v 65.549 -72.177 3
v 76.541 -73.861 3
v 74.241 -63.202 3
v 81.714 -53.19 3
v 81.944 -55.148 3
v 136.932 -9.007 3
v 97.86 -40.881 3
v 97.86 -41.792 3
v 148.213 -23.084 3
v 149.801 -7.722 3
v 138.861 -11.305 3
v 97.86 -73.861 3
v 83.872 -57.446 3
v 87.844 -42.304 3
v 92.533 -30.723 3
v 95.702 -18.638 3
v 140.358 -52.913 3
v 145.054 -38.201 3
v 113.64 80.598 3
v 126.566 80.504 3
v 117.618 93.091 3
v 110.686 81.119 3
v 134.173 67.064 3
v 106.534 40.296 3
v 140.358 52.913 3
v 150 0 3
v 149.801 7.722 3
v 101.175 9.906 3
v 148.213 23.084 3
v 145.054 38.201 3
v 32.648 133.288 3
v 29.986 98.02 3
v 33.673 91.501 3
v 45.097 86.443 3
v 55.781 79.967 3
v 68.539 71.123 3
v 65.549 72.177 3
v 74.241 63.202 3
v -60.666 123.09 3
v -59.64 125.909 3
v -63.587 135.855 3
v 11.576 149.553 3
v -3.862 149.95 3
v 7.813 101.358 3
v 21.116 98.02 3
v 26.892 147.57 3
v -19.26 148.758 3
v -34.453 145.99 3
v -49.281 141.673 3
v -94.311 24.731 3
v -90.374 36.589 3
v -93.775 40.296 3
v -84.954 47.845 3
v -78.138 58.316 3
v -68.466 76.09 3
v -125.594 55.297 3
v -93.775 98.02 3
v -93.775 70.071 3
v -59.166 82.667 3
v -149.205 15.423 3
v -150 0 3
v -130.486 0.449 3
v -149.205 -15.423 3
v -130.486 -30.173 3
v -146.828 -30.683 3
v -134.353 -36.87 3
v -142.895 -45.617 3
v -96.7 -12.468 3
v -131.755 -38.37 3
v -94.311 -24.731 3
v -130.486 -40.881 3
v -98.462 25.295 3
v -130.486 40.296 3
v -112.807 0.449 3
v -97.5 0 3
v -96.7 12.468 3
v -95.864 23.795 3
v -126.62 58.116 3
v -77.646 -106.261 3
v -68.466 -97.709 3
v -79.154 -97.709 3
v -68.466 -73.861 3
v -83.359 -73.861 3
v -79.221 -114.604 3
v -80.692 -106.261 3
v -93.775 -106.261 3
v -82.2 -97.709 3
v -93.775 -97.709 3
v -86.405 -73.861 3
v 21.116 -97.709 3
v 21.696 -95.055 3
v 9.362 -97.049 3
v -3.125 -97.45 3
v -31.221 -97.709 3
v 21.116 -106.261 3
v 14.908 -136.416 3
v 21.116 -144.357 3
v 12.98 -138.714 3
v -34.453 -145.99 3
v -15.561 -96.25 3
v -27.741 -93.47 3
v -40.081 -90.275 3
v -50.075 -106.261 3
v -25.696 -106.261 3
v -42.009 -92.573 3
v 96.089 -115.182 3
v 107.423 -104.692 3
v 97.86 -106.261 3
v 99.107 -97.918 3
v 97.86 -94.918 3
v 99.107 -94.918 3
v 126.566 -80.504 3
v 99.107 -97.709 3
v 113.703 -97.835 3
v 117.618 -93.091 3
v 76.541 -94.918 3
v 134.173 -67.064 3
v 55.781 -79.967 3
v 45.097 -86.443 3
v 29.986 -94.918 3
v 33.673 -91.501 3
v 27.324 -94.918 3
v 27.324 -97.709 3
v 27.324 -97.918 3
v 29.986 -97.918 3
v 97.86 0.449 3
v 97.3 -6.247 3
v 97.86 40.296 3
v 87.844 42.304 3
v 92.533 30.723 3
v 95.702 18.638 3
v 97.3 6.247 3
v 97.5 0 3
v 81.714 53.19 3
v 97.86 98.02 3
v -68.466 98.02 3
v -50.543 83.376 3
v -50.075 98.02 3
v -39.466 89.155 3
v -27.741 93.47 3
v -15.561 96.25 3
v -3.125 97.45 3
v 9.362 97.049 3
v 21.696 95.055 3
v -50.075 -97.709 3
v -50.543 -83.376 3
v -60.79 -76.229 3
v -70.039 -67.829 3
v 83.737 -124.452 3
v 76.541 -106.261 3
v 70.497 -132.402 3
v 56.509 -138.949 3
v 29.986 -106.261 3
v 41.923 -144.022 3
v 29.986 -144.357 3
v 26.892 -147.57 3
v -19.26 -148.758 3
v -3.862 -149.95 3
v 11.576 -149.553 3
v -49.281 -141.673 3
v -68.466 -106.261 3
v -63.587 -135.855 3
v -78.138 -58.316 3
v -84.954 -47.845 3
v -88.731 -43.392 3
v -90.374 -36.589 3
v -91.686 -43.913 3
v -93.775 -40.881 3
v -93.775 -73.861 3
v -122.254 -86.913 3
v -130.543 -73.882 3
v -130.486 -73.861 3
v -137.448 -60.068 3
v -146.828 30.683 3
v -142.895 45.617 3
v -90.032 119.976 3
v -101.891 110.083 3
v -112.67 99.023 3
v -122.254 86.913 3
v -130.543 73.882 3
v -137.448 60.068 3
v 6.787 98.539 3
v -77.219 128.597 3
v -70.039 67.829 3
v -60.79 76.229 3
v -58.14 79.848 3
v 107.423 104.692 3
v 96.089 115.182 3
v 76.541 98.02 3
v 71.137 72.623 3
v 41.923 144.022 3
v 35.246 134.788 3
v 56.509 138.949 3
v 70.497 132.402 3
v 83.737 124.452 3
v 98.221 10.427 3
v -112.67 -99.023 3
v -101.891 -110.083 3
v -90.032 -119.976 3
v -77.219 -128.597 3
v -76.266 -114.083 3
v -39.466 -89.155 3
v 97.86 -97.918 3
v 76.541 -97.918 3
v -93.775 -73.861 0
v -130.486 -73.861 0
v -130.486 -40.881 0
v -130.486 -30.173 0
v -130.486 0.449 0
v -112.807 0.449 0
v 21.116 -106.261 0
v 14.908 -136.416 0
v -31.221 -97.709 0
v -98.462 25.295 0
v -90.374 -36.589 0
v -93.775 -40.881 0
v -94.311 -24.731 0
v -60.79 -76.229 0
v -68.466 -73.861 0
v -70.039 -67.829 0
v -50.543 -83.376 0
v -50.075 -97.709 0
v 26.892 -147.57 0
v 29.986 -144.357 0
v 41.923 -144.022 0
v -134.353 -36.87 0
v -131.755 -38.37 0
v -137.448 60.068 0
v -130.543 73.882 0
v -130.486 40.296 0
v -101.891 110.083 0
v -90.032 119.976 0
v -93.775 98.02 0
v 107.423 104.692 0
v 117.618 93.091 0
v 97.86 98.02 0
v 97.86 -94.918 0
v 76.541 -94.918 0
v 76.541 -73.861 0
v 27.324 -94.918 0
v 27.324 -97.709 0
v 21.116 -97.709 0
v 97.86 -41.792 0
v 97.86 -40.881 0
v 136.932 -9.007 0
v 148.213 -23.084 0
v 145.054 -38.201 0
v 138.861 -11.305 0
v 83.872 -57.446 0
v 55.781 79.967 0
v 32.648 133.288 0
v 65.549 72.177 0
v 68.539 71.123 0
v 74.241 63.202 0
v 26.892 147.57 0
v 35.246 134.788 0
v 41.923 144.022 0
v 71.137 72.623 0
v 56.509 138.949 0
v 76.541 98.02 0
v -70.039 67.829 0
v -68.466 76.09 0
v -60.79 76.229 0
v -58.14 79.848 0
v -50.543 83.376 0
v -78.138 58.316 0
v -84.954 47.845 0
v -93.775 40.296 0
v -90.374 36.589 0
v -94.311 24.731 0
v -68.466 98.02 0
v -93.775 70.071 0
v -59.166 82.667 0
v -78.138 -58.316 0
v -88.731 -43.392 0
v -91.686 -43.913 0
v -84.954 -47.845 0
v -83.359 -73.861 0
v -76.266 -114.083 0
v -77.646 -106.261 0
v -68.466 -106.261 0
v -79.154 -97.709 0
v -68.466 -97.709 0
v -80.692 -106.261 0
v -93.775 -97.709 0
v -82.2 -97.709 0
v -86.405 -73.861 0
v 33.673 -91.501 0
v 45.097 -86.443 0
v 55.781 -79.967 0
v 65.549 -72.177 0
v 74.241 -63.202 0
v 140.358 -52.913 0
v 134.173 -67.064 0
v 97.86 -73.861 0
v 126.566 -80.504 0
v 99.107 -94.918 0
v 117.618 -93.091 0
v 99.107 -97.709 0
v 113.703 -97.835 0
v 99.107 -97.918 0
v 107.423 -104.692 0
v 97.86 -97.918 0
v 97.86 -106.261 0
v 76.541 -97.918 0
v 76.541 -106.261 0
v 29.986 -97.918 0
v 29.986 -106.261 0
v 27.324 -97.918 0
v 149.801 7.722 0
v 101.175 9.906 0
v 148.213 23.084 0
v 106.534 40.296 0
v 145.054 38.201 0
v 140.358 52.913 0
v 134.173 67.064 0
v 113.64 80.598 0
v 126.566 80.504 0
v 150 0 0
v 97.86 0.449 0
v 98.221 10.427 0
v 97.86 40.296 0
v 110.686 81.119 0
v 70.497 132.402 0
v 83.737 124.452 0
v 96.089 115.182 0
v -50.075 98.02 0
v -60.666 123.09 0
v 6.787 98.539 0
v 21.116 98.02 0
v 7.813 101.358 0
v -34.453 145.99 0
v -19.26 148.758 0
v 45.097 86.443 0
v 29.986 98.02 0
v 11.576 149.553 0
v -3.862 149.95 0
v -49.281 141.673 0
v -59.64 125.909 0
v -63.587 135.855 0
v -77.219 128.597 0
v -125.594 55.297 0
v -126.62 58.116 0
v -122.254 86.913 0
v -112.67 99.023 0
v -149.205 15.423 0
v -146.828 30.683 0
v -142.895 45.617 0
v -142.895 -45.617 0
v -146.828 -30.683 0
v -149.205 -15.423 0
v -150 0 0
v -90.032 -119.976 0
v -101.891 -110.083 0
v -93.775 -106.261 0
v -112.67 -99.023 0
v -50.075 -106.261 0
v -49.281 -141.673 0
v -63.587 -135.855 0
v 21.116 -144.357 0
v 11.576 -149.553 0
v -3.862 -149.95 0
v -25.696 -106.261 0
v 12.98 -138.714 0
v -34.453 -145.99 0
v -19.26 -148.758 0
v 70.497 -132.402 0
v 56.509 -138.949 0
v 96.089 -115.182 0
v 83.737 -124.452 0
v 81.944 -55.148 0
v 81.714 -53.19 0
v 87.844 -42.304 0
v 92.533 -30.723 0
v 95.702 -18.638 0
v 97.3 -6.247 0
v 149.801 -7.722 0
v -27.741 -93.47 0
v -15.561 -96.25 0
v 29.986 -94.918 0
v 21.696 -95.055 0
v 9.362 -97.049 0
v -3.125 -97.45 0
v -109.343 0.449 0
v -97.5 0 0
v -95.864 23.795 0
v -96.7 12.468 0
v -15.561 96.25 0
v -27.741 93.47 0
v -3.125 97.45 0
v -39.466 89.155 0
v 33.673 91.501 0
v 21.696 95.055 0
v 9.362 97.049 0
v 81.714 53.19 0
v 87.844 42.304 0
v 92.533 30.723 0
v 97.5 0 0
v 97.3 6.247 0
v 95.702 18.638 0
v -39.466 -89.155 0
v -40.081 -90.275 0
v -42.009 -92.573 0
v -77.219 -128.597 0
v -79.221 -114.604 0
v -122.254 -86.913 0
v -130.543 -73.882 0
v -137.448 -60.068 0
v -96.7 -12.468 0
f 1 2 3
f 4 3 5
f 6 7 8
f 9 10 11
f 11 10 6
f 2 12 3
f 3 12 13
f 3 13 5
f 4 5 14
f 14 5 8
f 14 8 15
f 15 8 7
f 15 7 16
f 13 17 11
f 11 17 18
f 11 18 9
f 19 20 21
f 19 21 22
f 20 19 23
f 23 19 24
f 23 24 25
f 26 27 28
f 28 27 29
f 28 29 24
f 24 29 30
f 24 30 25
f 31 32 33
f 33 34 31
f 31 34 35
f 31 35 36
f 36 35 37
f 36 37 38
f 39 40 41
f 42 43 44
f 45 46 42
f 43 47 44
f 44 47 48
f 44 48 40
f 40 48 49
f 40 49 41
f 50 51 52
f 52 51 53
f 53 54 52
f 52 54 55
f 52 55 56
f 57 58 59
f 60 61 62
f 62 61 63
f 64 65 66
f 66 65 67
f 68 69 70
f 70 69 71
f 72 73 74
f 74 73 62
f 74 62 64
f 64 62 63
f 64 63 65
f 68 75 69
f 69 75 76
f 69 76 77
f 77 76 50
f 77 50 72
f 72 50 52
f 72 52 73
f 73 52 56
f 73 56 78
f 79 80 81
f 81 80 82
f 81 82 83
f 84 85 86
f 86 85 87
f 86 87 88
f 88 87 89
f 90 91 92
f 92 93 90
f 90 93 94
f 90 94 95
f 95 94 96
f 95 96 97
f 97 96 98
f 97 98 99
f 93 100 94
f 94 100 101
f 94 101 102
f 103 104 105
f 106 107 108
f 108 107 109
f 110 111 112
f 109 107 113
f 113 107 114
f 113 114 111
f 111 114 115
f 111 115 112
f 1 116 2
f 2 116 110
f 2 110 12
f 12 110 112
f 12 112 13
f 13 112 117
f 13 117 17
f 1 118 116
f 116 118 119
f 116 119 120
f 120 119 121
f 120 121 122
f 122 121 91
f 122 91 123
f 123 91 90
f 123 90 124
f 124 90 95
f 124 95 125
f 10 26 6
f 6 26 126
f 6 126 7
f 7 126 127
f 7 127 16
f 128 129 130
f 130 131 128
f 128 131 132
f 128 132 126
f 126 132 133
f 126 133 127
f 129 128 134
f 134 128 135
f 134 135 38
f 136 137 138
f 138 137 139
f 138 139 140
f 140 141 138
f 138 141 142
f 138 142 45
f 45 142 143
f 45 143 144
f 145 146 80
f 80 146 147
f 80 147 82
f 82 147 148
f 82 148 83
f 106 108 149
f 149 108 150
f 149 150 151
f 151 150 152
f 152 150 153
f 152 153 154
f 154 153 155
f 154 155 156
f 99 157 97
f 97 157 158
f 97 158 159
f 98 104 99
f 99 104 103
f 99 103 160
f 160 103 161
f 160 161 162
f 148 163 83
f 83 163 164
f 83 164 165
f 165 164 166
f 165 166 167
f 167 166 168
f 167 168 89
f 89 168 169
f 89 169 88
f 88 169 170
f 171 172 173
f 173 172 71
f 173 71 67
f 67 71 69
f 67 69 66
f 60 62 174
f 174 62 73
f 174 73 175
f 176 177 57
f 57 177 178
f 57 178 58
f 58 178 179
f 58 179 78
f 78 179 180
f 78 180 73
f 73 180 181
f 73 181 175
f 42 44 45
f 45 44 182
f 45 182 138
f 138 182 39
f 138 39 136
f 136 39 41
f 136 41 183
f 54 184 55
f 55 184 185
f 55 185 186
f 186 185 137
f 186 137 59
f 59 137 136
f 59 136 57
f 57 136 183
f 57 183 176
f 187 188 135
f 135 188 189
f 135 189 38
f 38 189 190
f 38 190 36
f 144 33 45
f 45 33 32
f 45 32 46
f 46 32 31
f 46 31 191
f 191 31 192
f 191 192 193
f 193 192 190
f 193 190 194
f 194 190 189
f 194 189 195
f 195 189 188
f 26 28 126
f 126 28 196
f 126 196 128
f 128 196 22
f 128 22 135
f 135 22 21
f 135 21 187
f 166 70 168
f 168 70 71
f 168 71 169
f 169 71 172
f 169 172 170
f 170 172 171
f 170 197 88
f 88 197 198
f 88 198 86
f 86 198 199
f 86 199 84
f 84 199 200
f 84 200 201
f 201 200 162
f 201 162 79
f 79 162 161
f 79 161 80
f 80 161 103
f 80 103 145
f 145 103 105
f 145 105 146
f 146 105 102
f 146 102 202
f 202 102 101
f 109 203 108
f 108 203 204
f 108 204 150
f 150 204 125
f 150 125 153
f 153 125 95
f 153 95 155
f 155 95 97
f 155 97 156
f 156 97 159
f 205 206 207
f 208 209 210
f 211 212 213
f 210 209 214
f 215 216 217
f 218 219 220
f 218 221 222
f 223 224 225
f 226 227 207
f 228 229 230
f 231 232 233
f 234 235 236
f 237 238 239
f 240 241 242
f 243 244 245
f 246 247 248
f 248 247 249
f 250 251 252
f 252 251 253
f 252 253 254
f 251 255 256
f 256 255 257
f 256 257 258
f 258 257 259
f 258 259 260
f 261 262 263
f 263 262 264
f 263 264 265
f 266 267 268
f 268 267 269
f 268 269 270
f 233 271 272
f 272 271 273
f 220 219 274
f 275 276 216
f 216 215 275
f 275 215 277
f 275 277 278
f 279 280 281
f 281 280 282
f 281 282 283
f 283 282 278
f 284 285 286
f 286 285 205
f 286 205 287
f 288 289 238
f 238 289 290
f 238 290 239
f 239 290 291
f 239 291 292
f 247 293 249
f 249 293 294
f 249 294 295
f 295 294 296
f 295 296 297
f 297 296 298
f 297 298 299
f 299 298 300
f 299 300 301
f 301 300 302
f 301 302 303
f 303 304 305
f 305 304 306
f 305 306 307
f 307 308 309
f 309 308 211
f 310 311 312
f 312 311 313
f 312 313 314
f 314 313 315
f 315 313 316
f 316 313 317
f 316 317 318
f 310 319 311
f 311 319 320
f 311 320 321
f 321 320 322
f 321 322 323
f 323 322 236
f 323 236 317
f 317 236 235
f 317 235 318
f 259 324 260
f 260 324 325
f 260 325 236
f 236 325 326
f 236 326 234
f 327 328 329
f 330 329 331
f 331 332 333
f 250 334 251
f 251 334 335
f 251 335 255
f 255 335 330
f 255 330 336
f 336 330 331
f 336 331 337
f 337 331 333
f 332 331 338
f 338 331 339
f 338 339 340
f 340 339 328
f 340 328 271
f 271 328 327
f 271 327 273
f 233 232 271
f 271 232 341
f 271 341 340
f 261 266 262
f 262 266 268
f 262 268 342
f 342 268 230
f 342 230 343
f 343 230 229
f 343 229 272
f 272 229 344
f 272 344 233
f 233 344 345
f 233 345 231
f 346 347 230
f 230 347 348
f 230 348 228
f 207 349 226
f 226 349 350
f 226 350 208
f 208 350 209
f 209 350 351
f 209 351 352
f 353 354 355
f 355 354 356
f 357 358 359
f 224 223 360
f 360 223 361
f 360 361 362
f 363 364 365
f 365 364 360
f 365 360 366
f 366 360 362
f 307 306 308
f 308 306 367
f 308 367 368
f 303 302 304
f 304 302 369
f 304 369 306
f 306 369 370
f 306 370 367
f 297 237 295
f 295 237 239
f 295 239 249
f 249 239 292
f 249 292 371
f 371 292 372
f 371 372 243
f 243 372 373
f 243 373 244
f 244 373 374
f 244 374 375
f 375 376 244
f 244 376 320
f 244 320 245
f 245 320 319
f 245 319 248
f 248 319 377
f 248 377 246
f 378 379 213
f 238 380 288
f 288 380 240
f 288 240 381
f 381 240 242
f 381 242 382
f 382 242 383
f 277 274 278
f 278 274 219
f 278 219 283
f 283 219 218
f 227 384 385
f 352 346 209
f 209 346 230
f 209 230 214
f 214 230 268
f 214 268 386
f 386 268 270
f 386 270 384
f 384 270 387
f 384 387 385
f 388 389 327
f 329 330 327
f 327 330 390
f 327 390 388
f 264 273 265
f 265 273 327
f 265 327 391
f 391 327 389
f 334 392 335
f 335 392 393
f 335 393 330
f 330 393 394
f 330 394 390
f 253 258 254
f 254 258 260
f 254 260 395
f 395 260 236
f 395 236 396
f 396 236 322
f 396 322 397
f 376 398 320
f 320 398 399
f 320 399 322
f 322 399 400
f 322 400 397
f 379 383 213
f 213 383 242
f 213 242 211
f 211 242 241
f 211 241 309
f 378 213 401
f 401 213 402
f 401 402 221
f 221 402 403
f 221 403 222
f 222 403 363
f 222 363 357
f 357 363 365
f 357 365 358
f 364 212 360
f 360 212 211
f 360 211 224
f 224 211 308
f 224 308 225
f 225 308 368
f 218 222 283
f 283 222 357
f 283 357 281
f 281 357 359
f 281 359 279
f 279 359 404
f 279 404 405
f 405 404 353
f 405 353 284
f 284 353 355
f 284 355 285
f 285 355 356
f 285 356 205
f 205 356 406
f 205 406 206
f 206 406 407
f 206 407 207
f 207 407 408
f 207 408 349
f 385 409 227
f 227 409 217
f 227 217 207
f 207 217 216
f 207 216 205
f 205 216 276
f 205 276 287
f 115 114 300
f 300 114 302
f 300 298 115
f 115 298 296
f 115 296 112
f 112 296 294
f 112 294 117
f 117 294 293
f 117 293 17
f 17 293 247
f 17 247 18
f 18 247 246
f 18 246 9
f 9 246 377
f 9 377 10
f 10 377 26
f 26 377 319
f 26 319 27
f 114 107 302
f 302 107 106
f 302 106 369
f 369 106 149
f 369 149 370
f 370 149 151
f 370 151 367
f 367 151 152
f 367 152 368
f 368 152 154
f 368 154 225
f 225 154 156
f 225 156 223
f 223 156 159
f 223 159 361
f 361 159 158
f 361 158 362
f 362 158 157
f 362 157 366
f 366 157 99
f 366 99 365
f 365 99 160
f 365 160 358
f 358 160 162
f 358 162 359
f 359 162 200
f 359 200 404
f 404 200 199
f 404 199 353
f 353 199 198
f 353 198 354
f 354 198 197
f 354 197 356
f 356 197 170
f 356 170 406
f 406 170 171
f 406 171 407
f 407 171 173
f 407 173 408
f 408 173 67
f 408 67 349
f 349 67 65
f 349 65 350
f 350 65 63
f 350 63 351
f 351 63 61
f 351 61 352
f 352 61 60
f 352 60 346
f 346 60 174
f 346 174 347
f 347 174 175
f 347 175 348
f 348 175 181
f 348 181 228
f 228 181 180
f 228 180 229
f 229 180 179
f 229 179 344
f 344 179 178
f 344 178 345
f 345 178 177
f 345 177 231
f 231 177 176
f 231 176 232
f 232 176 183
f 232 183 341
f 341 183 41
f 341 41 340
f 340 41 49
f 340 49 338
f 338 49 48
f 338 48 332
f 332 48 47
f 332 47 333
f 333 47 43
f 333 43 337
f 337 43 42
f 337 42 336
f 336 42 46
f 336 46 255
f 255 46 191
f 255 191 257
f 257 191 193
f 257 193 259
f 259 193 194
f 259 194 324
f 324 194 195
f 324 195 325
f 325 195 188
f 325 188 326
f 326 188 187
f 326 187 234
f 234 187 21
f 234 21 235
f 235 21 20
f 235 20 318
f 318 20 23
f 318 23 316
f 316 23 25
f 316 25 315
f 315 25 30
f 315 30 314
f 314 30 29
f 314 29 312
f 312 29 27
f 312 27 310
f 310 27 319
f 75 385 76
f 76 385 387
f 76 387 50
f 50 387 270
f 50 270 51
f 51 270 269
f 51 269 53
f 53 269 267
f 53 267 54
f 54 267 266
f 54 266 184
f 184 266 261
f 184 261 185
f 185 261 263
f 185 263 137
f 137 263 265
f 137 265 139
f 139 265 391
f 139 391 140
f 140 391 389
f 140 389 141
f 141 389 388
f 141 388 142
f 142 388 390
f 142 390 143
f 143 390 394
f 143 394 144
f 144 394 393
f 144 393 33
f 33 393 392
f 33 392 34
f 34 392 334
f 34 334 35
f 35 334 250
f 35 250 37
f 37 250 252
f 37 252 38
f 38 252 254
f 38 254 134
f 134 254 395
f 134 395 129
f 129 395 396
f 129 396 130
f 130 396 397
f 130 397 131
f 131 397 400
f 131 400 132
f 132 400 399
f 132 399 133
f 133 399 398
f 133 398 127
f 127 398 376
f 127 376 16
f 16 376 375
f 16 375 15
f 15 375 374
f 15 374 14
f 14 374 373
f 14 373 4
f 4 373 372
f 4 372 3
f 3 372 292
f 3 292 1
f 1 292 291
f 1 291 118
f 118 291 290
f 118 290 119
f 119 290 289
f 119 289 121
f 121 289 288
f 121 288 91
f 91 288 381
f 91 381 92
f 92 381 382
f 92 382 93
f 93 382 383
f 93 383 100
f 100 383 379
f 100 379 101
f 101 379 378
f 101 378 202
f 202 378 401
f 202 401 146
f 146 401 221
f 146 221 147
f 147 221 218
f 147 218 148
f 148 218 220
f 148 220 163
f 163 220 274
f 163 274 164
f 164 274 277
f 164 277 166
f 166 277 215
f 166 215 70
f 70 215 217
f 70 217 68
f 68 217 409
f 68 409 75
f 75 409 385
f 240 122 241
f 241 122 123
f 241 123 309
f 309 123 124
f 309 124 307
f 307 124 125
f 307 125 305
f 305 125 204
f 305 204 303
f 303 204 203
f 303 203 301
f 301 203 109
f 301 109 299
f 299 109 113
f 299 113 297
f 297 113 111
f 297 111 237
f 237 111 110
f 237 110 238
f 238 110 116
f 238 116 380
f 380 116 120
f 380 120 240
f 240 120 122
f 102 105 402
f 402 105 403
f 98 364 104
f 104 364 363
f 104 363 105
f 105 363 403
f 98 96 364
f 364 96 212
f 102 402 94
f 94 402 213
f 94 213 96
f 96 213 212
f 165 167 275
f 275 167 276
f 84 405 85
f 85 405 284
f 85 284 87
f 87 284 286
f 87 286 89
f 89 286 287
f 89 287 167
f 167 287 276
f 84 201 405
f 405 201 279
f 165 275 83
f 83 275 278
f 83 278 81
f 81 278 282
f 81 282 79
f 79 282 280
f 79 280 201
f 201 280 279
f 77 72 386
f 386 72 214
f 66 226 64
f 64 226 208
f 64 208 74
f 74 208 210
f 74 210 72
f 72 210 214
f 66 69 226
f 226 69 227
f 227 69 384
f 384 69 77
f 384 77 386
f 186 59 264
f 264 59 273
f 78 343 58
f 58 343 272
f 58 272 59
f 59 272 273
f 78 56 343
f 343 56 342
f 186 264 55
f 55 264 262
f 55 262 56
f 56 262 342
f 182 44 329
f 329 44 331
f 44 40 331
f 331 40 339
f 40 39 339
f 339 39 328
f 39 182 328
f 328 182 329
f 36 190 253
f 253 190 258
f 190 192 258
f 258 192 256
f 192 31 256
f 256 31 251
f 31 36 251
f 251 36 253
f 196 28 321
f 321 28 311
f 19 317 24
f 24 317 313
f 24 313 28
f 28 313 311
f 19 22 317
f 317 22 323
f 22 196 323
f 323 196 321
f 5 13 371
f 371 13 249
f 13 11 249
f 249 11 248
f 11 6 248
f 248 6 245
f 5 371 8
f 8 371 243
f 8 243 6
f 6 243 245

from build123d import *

# Parameters (mm, degrees)
SKETCH1_R         = 150
SKETCH1_R_2       = 97.5
SHROUD_DEPTH      = 3
SKETCH2_W         = 71.782300335
SKETCH2_H         = 3
BLADE_SLOTS_DEPTH = 3


with BuildPart() as part:
    # Sketch1 → Shroud (new body)
    with BuildSketch(Plane.XY):
        Circle(SKETCH1_R)
        Circle(SKETCH1_R_2, mode=Mode.SUBTRACT)
    extrude(amount=SHROUD_DEPTH)

    # Sketch2 → Blade_slots (cut)
    with BuildSketch(Plane.XY):
        with Locations((63.2155163, -96.418141453)):
            Rectangle(SKETCH2_W, SKETCH2_H)
        Polygon((83.872246927, -57.445884148), (138.860679213, -11.305110898), (136.932316384, -9.006977568), (81.943884098, -55.147750818), align=None)
        Polygon((101.175371248, 9.90594079), (113.64023689, 80.597706689), (110.685813631, 81.118651222), (98.220947989, 10.426885323), align=None)
        Polygon((71.137414923, 72.62266594), (35.246264756, 134.787961572), (32.648188544, 133.287961572), (68.539338712, 71.12266594), align=None)
        Polygon((7.813471551, 101.358438585), (-59.639826377, 125.909431234), (-60.665886807, 123.090353372), (6.787411121, 98.539360723), align=None)
        Polygon((-59.166481997, 82.667471343), (-126.619779924, 58.116478695), (-125.593719494, 55.297400832), (-58.140421567, 79.848393481), align=None)
        Polygon((-98.461781056, 25.295475513), (-134.352931224, -36.869820119), (-131.754855012, -38.369820119), (-95.863704845, 23.795475513), align=None)
        Polygon((-91.685718479, -43.912554438), (-79.220852837, -114.604320337), (-76.266429578, -114.083375804), (-88.73129522, -43.391609905), align=None)
        Polygon((-42.008889252, -92.573412133), (12.979543034, -138.714185383), (14.907905863, -136.416052054), (-40.080526423, -90.275278804), align=None)
    extrude(amount=BLADE_SLOTS_DEPTH, mode=Mode.SUBTRACT)


solid = part.part
